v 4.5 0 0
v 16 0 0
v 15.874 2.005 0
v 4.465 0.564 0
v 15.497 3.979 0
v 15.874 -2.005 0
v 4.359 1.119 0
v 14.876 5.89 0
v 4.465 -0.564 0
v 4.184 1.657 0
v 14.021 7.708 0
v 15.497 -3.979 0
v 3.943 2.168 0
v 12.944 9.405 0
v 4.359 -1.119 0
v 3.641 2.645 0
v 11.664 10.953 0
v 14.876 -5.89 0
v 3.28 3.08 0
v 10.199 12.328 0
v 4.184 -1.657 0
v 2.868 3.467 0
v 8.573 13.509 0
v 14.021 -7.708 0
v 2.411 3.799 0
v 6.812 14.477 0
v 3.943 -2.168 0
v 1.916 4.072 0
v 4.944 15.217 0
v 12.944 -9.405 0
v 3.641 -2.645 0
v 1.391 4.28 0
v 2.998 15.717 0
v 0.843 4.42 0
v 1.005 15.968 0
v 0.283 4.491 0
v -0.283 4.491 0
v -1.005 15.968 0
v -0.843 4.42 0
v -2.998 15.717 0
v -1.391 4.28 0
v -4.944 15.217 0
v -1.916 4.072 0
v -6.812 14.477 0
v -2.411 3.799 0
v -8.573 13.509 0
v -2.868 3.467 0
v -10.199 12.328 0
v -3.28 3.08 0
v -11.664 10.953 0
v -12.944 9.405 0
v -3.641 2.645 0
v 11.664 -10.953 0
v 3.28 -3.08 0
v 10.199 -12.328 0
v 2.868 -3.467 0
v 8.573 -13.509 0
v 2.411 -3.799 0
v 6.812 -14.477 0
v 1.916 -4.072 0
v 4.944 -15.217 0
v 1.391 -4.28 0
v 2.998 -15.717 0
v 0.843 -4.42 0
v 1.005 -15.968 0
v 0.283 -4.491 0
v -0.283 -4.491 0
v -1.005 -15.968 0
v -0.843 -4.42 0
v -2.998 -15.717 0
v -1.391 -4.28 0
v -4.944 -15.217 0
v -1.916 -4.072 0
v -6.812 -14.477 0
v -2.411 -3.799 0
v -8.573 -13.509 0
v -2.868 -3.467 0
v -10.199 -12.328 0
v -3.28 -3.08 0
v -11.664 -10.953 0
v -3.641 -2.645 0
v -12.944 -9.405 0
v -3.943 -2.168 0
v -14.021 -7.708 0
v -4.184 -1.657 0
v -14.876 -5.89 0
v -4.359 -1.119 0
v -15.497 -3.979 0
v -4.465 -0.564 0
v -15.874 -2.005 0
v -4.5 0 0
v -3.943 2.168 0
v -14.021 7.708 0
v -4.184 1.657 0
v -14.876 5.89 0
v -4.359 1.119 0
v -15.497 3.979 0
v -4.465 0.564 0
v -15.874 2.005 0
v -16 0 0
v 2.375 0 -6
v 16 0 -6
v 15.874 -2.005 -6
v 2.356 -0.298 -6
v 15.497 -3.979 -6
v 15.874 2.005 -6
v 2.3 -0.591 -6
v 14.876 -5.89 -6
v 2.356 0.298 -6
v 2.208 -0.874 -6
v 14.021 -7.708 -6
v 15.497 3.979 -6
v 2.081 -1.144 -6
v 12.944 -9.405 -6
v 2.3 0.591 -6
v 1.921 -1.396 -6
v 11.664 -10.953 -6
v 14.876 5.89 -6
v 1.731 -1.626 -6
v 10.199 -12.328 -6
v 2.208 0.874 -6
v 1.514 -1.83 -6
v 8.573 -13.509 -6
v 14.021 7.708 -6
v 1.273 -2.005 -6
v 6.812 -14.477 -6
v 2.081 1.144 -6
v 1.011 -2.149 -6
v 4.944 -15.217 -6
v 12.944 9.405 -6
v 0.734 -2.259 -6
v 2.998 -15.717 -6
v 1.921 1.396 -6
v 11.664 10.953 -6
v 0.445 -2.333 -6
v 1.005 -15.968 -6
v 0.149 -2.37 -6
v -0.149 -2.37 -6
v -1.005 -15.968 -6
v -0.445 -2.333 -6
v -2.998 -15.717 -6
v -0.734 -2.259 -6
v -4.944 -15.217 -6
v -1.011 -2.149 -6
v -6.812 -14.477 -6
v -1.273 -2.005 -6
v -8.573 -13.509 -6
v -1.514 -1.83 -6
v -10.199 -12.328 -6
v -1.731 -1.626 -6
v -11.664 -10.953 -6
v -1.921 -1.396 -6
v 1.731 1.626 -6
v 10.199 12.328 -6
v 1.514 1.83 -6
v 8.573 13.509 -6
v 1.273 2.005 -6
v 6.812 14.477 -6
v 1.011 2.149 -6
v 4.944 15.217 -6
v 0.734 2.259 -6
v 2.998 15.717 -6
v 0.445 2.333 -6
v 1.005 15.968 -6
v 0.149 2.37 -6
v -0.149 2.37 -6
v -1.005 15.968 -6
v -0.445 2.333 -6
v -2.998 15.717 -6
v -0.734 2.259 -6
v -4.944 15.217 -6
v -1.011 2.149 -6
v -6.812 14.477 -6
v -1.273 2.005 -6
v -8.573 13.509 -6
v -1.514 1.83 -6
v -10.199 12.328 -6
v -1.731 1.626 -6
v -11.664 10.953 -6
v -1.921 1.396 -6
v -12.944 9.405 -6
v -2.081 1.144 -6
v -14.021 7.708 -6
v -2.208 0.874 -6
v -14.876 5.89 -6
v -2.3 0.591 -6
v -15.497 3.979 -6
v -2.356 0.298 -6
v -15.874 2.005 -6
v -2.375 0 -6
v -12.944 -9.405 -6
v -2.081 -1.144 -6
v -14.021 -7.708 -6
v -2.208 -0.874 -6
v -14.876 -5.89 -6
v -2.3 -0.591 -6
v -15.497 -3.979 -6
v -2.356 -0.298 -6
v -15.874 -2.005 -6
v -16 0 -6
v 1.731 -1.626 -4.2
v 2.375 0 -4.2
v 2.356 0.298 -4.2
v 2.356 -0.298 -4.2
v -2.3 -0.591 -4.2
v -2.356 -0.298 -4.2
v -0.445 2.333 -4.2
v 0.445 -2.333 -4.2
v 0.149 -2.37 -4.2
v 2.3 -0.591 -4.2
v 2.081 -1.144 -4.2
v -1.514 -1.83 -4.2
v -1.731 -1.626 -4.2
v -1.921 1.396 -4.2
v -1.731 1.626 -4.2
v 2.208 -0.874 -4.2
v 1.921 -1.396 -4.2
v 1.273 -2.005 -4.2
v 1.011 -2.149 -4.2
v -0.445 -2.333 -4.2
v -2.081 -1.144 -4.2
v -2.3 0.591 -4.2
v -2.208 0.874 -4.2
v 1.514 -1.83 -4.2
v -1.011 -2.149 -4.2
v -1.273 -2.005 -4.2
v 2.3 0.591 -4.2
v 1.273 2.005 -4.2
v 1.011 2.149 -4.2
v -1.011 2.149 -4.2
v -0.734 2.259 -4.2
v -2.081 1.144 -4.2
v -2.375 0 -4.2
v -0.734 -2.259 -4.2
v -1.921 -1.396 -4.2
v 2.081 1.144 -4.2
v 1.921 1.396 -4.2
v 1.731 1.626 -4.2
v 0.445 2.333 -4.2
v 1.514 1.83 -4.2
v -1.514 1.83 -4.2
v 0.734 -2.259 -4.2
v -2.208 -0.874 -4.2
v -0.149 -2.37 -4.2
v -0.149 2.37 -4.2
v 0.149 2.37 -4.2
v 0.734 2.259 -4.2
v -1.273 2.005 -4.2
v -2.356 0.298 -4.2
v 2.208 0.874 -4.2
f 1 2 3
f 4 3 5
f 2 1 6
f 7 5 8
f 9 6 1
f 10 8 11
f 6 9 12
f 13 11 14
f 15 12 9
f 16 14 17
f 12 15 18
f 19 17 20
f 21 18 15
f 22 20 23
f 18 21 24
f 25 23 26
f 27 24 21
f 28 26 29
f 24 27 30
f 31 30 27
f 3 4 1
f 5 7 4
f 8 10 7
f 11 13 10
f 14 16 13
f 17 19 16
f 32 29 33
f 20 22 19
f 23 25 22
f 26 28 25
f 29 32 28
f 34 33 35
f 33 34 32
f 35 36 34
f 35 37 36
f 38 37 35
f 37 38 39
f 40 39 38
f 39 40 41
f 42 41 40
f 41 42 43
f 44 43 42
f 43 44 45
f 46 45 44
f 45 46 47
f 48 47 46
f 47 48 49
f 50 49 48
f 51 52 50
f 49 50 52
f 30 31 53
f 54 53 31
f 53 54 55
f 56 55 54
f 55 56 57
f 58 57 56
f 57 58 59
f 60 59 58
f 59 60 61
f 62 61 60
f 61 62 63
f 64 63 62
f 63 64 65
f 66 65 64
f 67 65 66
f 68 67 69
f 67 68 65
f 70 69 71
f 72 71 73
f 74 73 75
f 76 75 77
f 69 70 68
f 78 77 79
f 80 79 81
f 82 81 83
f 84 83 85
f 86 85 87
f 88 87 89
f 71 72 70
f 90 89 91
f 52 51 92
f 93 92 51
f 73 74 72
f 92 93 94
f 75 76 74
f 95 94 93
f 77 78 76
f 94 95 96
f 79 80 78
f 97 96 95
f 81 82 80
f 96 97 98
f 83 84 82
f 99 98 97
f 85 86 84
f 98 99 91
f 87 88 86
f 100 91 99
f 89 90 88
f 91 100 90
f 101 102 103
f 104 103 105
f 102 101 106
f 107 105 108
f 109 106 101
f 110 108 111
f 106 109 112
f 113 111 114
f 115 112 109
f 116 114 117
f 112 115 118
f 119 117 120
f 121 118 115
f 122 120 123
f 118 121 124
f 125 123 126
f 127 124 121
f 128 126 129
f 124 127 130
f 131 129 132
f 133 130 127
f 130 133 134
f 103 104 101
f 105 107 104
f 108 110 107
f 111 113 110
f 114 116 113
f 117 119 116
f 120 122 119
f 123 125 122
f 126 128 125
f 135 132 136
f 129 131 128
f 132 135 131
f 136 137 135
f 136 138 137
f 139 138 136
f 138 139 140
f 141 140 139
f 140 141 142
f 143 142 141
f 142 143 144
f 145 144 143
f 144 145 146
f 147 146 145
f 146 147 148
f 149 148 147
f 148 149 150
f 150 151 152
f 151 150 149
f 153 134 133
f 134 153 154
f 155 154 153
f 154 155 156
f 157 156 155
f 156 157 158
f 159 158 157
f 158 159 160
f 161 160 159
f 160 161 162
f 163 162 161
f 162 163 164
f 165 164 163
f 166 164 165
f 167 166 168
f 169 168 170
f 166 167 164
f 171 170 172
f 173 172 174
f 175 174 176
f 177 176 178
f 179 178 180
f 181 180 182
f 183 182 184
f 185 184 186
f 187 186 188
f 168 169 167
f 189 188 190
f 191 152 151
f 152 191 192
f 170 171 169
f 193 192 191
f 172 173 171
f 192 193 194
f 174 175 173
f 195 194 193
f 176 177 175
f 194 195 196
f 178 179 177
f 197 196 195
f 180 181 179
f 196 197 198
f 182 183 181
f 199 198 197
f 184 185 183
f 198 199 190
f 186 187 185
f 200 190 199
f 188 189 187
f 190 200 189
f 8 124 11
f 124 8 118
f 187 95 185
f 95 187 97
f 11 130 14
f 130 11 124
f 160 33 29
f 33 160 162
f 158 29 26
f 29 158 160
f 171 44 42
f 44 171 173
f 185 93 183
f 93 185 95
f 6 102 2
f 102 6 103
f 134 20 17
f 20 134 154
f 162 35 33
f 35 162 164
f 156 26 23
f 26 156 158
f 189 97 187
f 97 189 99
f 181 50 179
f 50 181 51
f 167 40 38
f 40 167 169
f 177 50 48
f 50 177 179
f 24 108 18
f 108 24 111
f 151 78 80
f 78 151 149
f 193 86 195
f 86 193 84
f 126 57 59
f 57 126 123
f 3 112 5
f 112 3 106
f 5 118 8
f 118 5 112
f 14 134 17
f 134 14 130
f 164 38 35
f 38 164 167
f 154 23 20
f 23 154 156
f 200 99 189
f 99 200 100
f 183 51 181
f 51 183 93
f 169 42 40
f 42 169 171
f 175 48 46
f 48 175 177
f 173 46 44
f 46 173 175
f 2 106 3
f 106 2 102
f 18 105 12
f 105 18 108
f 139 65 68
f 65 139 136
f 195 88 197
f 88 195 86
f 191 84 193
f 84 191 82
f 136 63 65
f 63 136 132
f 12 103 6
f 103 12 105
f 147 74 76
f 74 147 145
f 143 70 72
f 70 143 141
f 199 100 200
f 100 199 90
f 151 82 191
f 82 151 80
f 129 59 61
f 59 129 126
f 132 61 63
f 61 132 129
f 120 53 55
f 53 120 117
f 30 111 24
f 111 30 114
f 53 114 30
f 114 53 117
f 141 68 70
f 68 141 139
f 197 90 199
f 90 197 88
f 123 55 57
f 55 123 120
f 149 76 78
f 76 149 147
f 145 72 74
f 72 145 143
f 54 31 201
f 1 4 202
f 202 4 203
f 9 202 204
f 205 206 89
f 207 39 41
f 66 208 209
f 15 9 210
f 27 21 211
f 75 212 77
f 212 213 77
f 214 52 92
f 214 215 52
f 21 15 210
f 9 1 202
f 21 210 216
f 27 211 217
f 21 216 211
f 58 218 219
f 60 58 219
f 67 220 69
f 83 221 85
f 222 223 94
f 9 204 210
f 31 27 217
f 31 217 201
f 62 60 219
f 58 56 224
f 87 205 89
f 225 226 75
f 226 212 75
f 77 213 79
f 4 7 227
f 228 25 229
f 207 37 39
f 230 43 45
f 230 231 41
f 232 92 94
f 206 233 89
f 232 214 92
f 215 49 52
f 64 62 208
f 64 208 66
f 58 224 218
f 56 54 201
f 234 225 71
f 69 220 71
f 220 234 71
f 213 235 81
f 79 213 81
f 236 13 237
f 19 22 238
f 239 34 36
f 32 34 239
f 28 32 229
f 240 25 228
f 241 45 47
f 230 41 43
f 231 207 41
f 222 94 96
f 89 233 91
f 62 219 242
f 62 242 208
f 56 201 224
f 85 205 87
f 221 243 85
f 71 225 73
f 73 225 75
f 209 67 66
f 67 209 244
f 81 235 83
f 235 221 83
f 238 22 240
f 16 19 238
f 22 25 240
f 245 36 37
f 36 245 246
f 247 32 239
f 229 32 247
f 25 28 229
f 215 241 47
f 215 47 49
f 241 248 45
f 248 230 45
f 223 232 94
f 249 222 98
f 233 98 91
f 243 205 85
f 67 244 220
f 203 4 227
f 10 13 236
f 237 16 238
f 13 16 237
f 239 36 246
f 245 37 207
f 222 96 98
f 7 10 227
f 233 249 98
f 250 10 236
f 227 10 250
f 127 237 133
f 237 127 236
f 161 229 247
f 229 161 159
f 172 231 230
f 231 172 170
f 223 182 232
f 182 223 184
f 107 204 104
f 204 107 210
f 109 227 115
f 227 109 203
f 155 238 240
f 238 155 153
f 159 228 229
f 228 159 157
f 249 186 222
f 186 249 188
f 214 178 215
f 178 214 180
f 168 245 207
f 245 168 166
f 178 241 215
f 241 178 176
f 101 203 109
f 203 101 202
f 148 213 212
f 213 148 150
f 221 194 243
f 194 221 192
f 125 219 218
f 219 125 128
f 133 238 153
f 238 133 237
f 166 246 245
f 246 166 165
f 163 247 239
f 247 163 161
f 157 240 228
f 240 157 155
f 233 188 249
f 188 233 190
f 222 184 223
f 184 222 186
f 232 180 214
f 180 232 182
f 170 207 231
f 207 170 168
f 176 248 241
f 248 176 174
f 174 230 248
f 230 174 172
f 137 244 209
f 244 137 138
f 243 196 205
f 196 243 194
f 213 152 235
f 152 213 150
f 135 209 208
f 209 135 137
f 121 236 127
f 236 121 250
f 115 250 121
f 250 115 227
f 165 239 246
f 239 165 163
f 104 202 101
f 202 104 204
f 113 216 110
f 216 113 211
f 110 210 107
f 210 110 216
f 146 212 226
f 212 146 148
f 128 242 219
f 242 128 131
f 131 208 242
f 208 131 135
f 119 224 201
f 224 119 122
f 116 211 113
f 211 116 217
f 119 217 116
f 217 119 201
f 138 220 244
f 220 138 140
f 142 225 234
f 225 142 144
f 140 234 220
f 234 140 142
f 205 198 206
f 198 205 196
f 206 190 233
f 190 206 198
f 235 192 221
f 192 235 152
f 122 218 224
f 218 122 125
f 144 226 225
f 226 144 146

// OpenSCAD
$fn = 50;


difference() {
	union() {
		translate(v = [0, 0, -6.0000000000]) {
			cylinder(h = 6, r = 10.0000000000);
		}
		translate(v = [0, 0, -6.0000000000]) {
			cylinder(h = 6, r = 16.0000000000);
		}
	}
	union() {
		translate(v = [0, 0, 0]) {
			rotate(a = [0, 0, 0]) {
				difference() {
					union() {
						#translate(v = [0, 0, -6.0000000000]) {
							cylinder(h = 6, r = 2.2500000000);
						}
						#translate(v = [0, 0, -4.2000000000]) {
							cylinder(h = 4.2000000000, r1 = 2.3750000000, r2 = 4.5000000000);
						}
						#translate(v = [0, 0, -6.0000000000]) {
							cylinder(h = 6, r = 2.3750000000);
						}
						#translate(v = [0, 0, -6.0000000000]) {
							cylinder(h = 6, r = 2.2500000000);
						}
					}
					union();
				}
			}
		}
	}
}
